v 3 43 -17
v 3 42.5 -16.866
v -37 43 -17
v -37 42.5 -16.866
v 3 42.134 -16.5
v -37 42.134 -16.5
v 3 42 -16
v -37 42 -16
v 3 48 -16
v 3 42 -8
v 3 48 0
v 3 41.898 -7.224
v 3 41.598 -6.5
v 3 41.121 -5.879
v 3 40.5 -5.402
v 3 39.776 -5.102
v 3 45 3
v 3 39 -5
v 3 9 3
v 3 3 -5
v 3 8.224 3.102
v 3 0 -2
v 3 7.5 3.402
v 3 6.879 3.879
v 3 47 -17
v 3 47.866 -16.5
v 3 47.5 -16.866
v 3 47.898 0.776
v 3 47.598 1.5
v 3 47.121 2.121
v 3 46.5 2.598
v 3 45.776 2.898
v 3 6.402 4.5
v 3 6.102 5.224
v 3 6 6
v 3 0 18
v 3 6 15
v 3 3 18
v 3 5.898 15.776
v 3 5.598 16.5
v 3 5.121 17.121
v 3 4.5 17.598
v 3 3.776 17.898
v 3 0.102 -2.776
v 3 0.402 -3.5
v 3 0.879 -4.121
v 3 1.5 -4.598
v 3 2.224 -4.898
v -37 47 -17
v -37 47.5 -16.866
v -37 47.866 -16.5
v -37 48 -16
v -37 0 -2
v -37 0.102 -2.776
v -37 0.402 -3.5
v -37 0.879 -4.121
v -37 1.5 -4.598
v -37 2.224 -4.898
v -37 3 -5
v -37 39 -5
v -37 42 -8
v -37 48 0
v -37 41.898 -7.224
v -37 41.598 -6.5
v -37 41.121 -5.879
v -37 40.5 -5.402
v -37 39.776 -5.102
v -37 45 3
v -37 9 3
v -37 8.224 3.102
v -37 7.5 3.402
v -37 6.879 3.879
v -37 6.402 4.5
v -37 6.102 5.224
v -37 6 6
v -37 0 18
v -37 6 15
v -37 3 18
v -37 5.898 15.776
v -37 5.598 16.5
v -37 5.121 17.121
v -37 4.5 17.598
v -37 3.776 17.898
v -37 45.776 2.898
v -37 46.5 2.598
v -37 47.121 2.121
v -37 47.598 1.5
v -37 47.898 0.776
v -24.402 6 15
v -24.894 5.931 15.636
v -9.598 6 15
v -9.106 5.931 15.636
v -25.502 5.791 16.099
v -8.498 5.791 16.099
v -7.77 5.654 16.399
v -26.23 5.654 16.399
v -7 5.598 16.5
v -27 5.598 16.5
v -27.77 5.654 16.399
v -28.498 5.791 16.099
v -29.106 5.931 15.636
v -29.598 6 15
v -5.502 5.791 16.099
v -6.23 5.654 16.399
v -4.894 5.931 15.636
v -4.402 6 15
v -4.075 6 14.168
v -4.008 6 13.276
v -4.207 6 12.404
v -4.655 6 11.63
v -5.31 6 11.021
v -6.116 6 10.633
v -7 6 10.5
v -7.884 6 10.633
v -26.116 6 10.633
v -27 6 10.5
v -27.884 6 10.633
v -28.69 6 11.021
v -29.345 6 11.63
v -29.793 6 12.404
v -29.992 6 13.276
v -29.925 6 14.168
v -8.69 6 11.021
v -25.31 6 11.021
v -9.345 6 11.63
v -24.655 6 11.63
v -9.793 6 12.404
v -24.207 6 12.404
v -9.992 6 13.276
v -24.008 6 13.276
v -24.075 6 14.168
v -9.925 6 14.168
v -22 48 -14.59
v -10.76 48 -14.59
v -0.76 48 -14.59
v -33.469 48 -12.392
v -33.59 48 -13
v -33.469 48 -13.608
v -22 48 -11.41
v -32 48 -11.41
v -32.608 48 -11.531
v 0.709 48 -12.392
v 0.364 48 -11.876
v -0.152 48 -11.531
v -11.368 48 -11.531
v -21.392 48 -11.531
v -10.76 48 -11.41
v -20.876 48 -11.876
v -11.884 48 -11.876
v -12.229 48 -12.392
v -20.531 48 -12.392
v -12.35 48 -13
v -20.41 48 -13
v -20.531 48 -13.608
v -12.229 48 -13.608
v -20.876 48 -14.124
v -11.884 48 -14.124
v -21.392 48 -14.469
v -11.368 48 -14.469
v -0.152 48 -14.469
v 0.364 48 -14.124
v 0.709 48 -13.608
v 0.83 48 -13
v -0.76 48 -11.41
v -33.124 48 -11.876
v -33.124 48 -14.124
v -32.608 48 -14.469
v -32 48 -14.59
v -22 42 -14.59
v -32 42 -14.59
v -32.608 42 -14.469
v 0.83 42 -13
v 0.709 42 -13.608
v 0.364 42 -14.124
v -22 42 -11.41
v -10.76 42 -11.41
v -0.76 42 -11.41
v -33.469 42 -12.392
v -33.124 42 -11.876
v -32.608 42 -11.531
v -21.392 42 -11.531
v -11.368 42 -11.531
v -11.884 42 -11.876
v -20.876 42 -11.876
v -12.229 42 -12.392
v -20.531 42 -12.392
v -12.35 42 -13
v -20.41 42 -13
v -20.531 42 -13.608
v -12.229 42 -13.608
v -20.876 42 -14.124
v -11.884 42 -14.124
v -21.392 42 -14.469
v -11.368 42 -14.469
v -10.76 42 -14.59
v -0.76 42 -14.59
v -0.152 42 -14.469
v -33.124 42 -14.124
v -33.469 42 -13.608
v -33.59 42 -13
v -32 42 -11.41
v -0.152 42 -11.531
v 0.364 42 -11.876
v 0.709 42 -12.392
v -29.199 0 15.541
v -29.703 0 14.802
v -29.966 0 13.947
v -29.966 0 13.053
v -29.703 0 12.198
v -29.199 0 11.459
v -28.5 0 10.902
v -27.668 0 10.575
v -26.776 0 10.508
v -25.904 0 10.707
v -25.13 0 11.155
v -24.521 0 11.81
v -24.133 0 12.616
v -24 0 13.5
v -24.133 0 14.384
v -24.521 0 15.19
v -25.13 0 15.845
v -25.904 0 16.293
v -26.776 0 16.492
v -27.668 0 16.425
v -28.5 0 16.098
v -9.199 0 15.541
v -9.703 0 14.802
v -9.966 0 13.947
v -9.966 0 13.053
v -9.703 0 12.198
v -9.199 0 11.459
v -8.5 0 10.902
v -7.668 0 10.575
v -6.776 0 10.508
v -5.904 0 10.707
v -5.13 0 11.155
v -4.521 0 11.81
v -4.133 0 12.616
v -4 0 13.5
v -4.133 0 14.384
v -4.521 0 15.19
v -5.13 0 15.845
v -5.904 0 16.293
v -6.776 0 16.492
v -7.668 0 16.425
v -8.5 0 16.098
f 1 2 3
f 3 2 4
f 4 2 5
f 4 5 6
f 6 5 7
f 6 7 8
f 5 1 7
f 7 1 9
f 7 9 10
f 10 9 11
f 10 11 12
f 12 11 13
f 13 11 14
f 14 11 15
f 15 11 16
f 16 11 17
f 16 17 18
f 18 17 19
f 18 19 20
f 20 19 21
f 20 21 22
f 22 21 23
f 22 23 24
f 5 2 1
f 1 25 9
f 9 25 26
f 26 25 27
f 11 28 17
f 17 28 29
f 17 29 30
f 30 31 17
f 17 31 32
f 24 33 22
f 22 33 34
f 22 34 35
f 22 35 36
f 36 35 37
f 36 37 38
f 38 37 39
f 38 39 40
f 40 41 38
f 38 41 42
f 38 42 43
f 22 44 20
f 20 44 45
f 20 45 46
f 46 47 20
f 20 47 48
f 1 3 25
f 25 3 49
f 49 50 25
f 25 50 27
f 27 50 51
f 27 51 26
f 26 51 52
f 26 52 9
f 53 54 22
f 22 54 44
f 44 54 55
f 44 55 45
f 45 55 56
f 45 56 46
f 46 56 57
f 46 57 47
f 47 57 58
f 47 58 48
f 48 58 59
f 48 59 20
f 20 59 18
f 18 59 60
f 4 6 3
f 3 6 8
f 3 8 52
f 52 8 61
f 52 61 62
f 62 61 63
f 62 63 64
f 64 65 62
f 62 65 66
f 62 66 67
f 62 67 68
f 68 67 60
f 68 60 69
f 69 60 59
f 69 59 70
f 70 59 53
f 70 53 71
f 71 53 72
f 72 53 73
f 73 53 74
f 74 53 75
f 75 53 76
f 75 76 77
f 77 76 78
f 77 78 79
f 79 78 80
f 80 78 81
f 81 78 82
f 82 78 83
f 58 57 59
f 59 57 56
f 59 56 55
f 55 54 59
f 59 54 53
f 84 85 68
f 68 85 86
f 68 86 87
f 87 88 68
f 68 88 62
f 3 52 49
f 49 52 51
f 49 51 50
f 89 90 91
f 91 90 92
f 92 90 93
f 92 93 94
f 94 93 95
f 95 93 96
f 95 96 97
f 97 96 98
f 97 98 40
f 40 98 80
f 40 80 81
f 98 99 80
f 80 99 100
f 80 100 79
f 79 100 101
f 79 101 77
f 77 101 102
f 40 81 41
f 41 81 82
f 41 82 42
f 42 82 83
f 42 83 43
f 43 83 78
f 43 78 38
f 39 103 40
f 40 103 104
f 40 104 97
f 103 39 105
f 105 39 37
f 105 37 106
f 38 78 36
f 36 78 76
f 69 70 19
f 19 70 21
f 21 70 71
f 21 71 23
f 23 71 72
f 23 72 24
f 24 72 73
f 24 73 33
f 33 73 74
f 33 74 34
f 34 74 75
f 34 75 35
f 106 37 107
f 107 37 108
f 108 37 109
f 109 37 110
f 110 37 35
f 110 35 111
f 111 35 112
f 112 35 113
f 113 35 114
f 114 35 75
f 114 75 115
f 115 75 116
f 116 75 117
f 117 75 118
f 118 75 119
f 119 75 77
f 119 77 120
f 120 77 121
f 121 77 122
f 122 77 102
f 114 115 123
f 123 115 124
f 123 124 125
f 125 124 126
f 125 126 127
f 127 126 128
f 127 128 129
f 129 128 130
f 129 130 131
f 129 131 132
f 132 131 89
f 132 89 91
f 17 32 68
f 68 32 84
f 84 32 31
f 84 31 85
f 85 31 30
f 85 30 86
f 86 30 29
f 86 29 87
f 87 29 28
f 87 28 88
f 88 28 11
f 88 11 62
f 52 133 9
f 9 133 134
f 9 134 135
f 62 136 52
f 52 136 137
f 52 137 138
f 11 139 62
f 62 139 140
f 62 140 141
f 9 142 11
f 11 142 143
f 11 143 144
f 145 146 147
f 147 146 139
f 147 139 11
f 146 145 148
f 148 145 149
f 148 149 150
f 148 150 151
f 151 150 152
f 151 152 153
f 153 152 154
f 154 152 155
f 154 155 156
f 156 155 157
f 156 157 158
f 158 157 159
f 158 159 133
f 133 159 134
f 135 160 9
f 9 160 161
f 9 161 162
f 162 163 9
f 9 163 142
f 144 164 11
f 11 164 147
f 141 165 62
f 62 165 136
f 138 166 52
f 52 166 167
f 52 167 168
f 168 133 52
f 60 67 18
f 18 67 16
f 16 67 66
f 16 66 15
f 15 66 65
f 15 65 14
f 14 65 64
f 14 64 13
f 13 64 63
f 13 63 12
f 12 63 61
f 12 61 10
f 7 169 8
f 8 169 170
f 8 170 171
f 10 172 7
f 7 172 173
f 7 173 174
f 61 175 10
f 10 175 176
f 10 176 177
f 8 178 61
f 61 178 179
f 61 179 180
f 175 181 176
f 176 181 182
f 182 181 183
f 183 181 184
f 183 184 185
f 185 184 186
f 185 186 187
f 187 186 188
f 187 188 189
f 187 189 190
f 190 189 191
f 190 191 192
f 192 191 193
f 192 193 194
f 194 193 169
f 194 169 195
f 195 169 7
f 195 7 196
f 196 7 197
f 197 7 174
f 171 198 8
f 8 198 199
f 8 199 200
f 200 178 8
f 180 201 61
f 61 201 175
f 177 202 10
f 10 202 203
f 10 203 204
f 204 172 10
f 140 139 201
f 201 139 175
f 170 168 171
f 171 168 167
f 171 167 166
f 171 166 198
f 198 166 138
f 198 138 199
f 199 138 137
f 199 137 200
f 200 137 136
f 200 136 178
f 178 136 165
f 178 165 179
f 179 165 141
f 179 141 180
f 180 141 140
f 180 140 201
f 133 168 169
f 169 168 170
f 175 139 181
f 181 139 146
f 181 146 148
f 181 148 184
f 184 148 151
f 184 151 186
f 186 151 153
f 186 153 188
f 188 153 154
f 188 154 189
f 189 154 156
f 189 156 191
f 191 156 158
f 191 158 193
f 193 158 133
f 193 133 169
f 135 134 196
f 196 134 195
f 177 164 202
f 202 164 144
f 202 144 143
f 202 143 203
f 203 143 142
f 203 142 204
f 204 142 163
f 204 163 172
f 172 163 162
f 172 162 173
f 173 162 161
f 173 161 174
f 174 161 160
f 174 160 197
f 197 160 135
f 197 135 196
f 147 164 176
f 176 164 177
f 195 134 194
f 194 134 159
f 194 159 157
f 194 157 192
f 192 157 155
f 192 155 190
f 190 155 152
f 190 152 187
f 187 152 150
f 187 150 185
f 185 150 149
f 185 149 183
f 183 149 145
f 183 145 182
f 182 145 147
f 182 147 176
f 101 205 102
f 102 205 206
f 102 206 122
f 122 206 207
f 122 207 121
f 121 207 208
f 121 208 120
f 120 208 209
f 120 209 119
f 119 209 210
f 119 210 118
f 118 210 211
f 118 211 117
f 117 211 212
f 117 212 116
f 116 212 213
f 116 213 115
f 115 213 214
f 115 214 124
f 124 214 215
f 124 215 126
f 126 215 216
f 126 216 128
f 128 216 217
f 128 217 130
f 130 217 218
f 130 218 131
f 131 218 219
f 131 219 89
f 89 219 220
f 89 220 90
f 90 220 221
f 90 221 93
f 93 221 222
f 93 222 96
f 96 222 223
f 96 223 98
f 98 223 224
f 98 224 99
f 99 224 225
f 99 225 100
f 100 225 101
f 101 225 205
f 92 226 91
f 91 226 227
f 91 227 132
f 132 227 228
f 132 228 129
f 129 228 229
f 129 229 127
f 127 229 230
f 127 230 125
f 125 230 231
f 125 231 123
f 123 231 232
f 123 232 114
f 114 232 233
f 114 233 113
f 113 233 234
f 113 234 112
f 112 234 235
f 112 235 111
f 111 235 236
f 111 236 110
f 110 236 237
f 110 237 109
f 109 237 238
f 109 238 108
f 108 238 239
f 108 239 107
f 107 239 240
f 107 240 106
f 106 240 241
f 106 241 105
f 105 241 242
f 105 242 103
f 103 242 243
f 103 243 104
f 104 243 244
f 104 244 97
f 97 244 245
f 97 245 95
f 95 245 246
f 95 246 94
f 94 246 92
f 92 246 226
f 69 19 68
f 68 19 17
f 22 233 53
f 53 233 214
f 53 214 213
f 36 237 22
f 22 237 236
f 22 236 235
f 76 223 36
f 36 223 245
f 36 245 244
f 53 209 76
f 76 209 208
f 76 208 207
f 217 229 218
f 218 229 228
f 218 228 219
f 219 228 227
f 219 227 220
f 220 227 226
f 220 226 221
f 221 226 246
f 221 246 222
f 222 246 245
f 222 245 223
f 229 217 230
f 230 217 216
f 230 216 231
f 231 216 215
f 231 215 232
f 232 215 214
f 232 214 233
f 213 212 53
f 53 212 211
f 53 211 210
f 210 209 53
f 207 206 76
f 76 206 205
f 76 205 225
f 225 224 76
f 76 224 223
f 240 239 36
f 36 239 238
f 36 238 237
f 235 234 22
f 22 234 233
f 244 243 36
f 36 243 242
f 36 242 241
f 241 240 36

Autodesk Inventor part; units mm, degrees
ref_plane "YZ Plane" through (0, 0, 0) normal (1, 0, 0) x (0, 1, 0)
ref_plane "XZ Plane" through (0, 0, 0) normal (0, 1, 0) x (-1, 0, 0)
ref_plane "XY Plane" through (0, 0, 0) normal (0, 0, 1) x (1, 0, 0)
sketch "Sketch1" plane through (0, 0, 0) normal (0, 1, 0) x (-1, 0, 0)
  line L0 (0, 0) -> (34, 0)
  line L1 (34, 0) -> (34, -2)
  line L2 (34, -2) -> (0, -2)
  line L3 (0, -2) -> (0, 0)
  line L4 (37, -5) -> (37, 3)
  line L5 (37, 3) -> (-3, 3)
  line L6 (-3, 3) -> (-3, -5)
  line L7 (-3, -5) -> (37, -5)
  dimension "d0" = 34
  dimension "d1" = 2
  dimension "d2" = 3
extrude "Extrusion1" add sketch "Sketch1" along normal blind 48 contours L0 L1 L2 L3 | L7 L6 L5 L4
sketch "Sketch3" plane through (0, 0, 0) normal (0, -1, 0) x (1, 0, 0)
  line L0 (-37, 3) -> (3, 3) projected
  line L1 (-37, 3) -> (3, 3)
  line L2 (3, 3) -> (3, 18)
  line L3 (3, 18) -> (-37, 18)
  line L4 (-37, 18) -> (-37, 3)
  line L5 (3, -5) -> (-37, -5) projected
  line L6 (-37, -5) -> (3, -5)
  line L7 (3, -5) -> (3, -20)
  line L8 (3, -20) -> (-37, -20)
  line L9 (-37, -20) -> (-37, -5)
  circle A0 centre (-27, -12.5) radius 3
  circle A1 centre (-27, 13.5) radius 3
  circle A2 centre (-7, -12.5) radius 3
  circle A3 centre (-7, 13.5) radius 3
  point P0 (0, 0)
  point P1 (3, -5)
  dimension "d5" = 40
  dimension "d6" = 15
  dimension "d7" = 40
  dimension "d8" = 15
  dimension "d9" = 6
  dimension "d10" = 10
  dimension "d11" = 7.5
  dimension "d14" = 26
  dimension "d17" = 20
extrude "Extrusion2" add sketch "Sketch3" against normal blind 6 contours L4 L3 L2 L0
sketch "Sketch5" plane through (0, 48, 0) normal (0, 1, 0) x (1, 0, 0)
  line L0 (3, 5) -> (-37, 5) projected
  line L1 (-37, 5) -> (3, 5)
  line L2 (3, 5) -> (3, 17)
  line L3 (3, 17) -> (-37, 17)
  line L4 (-37, 17) -> (-37, 5)
  line L5 (-32, 13) -> (-22, 13) construction
  line L6 (-32, 11.41) -> (-22, 11.41)
  line L7 (-22, 14.59) -> (-32, 14.59)
  arc A0 (-32, 14.59) -> (-32, 11.41) centre (-32, 13) ccw
  arc A1 (-22, 11.41) -> (-22, 14.59) centre (-22, 13) ccw
  line L8 (-32, 13) -> (-22, 13) construction
  line L9 (-22, 13) -> (-10.76, 13)
  line L10 (-22, 13) -> (-10.76, 13) construction
  line L11 (-10.76, 13) -> (-0.76, 13) construction
  line L12 (-10.76, 11.41) -> (-0.76, 11.41)
  line L13 (-0.76, 14.59) -> (-10.76, 14.59)
  arc A2 (-10.76, 14.59) -> (-10.76, 11.41) centre (-10.76, 13) ccw
  arc A3 (-0.76, 11.41) -> (-0.76, 14.59) centre (-0.76, 13) ccw
  point P0 (0, 0)
  point P1 (-27, 13)
  point P2 (-5.76, 13)
  point P3 (3, 5)
  dimension "d40" = 40
  dimension "d41" = 12
  dimension "d43" = 10
  dimension "d44" = 0
  dimension "d45" = 3.18
  dimension "d46" = 11.24
  dimension "d47" = 0
  dimension "d48" = 10
  dimension "d49" = 3.18
  dimension "d57" = 4
  dimension "d58" = 10
extrude "Extrusion4" add sketch "Sketch5" against normal blind 6
fillet "Fillet1" radius 3 1 edges at (-17, 42, -5)
fillet "Fillet2" radius 3 2 edges at (-17, 48, 3) (-17, 6, 3)
fillet "Fillet3" radius 3 1 edges at (-17, 6, 18)
fillet "Fillet4" radius 3 1 edges at (-17, 0, -5)
fillet "Fillet5" radius 1 2 edges at (-17, 48, -17) (-17, 42, -17)
properties part number "MagnetActuatorHolder"
